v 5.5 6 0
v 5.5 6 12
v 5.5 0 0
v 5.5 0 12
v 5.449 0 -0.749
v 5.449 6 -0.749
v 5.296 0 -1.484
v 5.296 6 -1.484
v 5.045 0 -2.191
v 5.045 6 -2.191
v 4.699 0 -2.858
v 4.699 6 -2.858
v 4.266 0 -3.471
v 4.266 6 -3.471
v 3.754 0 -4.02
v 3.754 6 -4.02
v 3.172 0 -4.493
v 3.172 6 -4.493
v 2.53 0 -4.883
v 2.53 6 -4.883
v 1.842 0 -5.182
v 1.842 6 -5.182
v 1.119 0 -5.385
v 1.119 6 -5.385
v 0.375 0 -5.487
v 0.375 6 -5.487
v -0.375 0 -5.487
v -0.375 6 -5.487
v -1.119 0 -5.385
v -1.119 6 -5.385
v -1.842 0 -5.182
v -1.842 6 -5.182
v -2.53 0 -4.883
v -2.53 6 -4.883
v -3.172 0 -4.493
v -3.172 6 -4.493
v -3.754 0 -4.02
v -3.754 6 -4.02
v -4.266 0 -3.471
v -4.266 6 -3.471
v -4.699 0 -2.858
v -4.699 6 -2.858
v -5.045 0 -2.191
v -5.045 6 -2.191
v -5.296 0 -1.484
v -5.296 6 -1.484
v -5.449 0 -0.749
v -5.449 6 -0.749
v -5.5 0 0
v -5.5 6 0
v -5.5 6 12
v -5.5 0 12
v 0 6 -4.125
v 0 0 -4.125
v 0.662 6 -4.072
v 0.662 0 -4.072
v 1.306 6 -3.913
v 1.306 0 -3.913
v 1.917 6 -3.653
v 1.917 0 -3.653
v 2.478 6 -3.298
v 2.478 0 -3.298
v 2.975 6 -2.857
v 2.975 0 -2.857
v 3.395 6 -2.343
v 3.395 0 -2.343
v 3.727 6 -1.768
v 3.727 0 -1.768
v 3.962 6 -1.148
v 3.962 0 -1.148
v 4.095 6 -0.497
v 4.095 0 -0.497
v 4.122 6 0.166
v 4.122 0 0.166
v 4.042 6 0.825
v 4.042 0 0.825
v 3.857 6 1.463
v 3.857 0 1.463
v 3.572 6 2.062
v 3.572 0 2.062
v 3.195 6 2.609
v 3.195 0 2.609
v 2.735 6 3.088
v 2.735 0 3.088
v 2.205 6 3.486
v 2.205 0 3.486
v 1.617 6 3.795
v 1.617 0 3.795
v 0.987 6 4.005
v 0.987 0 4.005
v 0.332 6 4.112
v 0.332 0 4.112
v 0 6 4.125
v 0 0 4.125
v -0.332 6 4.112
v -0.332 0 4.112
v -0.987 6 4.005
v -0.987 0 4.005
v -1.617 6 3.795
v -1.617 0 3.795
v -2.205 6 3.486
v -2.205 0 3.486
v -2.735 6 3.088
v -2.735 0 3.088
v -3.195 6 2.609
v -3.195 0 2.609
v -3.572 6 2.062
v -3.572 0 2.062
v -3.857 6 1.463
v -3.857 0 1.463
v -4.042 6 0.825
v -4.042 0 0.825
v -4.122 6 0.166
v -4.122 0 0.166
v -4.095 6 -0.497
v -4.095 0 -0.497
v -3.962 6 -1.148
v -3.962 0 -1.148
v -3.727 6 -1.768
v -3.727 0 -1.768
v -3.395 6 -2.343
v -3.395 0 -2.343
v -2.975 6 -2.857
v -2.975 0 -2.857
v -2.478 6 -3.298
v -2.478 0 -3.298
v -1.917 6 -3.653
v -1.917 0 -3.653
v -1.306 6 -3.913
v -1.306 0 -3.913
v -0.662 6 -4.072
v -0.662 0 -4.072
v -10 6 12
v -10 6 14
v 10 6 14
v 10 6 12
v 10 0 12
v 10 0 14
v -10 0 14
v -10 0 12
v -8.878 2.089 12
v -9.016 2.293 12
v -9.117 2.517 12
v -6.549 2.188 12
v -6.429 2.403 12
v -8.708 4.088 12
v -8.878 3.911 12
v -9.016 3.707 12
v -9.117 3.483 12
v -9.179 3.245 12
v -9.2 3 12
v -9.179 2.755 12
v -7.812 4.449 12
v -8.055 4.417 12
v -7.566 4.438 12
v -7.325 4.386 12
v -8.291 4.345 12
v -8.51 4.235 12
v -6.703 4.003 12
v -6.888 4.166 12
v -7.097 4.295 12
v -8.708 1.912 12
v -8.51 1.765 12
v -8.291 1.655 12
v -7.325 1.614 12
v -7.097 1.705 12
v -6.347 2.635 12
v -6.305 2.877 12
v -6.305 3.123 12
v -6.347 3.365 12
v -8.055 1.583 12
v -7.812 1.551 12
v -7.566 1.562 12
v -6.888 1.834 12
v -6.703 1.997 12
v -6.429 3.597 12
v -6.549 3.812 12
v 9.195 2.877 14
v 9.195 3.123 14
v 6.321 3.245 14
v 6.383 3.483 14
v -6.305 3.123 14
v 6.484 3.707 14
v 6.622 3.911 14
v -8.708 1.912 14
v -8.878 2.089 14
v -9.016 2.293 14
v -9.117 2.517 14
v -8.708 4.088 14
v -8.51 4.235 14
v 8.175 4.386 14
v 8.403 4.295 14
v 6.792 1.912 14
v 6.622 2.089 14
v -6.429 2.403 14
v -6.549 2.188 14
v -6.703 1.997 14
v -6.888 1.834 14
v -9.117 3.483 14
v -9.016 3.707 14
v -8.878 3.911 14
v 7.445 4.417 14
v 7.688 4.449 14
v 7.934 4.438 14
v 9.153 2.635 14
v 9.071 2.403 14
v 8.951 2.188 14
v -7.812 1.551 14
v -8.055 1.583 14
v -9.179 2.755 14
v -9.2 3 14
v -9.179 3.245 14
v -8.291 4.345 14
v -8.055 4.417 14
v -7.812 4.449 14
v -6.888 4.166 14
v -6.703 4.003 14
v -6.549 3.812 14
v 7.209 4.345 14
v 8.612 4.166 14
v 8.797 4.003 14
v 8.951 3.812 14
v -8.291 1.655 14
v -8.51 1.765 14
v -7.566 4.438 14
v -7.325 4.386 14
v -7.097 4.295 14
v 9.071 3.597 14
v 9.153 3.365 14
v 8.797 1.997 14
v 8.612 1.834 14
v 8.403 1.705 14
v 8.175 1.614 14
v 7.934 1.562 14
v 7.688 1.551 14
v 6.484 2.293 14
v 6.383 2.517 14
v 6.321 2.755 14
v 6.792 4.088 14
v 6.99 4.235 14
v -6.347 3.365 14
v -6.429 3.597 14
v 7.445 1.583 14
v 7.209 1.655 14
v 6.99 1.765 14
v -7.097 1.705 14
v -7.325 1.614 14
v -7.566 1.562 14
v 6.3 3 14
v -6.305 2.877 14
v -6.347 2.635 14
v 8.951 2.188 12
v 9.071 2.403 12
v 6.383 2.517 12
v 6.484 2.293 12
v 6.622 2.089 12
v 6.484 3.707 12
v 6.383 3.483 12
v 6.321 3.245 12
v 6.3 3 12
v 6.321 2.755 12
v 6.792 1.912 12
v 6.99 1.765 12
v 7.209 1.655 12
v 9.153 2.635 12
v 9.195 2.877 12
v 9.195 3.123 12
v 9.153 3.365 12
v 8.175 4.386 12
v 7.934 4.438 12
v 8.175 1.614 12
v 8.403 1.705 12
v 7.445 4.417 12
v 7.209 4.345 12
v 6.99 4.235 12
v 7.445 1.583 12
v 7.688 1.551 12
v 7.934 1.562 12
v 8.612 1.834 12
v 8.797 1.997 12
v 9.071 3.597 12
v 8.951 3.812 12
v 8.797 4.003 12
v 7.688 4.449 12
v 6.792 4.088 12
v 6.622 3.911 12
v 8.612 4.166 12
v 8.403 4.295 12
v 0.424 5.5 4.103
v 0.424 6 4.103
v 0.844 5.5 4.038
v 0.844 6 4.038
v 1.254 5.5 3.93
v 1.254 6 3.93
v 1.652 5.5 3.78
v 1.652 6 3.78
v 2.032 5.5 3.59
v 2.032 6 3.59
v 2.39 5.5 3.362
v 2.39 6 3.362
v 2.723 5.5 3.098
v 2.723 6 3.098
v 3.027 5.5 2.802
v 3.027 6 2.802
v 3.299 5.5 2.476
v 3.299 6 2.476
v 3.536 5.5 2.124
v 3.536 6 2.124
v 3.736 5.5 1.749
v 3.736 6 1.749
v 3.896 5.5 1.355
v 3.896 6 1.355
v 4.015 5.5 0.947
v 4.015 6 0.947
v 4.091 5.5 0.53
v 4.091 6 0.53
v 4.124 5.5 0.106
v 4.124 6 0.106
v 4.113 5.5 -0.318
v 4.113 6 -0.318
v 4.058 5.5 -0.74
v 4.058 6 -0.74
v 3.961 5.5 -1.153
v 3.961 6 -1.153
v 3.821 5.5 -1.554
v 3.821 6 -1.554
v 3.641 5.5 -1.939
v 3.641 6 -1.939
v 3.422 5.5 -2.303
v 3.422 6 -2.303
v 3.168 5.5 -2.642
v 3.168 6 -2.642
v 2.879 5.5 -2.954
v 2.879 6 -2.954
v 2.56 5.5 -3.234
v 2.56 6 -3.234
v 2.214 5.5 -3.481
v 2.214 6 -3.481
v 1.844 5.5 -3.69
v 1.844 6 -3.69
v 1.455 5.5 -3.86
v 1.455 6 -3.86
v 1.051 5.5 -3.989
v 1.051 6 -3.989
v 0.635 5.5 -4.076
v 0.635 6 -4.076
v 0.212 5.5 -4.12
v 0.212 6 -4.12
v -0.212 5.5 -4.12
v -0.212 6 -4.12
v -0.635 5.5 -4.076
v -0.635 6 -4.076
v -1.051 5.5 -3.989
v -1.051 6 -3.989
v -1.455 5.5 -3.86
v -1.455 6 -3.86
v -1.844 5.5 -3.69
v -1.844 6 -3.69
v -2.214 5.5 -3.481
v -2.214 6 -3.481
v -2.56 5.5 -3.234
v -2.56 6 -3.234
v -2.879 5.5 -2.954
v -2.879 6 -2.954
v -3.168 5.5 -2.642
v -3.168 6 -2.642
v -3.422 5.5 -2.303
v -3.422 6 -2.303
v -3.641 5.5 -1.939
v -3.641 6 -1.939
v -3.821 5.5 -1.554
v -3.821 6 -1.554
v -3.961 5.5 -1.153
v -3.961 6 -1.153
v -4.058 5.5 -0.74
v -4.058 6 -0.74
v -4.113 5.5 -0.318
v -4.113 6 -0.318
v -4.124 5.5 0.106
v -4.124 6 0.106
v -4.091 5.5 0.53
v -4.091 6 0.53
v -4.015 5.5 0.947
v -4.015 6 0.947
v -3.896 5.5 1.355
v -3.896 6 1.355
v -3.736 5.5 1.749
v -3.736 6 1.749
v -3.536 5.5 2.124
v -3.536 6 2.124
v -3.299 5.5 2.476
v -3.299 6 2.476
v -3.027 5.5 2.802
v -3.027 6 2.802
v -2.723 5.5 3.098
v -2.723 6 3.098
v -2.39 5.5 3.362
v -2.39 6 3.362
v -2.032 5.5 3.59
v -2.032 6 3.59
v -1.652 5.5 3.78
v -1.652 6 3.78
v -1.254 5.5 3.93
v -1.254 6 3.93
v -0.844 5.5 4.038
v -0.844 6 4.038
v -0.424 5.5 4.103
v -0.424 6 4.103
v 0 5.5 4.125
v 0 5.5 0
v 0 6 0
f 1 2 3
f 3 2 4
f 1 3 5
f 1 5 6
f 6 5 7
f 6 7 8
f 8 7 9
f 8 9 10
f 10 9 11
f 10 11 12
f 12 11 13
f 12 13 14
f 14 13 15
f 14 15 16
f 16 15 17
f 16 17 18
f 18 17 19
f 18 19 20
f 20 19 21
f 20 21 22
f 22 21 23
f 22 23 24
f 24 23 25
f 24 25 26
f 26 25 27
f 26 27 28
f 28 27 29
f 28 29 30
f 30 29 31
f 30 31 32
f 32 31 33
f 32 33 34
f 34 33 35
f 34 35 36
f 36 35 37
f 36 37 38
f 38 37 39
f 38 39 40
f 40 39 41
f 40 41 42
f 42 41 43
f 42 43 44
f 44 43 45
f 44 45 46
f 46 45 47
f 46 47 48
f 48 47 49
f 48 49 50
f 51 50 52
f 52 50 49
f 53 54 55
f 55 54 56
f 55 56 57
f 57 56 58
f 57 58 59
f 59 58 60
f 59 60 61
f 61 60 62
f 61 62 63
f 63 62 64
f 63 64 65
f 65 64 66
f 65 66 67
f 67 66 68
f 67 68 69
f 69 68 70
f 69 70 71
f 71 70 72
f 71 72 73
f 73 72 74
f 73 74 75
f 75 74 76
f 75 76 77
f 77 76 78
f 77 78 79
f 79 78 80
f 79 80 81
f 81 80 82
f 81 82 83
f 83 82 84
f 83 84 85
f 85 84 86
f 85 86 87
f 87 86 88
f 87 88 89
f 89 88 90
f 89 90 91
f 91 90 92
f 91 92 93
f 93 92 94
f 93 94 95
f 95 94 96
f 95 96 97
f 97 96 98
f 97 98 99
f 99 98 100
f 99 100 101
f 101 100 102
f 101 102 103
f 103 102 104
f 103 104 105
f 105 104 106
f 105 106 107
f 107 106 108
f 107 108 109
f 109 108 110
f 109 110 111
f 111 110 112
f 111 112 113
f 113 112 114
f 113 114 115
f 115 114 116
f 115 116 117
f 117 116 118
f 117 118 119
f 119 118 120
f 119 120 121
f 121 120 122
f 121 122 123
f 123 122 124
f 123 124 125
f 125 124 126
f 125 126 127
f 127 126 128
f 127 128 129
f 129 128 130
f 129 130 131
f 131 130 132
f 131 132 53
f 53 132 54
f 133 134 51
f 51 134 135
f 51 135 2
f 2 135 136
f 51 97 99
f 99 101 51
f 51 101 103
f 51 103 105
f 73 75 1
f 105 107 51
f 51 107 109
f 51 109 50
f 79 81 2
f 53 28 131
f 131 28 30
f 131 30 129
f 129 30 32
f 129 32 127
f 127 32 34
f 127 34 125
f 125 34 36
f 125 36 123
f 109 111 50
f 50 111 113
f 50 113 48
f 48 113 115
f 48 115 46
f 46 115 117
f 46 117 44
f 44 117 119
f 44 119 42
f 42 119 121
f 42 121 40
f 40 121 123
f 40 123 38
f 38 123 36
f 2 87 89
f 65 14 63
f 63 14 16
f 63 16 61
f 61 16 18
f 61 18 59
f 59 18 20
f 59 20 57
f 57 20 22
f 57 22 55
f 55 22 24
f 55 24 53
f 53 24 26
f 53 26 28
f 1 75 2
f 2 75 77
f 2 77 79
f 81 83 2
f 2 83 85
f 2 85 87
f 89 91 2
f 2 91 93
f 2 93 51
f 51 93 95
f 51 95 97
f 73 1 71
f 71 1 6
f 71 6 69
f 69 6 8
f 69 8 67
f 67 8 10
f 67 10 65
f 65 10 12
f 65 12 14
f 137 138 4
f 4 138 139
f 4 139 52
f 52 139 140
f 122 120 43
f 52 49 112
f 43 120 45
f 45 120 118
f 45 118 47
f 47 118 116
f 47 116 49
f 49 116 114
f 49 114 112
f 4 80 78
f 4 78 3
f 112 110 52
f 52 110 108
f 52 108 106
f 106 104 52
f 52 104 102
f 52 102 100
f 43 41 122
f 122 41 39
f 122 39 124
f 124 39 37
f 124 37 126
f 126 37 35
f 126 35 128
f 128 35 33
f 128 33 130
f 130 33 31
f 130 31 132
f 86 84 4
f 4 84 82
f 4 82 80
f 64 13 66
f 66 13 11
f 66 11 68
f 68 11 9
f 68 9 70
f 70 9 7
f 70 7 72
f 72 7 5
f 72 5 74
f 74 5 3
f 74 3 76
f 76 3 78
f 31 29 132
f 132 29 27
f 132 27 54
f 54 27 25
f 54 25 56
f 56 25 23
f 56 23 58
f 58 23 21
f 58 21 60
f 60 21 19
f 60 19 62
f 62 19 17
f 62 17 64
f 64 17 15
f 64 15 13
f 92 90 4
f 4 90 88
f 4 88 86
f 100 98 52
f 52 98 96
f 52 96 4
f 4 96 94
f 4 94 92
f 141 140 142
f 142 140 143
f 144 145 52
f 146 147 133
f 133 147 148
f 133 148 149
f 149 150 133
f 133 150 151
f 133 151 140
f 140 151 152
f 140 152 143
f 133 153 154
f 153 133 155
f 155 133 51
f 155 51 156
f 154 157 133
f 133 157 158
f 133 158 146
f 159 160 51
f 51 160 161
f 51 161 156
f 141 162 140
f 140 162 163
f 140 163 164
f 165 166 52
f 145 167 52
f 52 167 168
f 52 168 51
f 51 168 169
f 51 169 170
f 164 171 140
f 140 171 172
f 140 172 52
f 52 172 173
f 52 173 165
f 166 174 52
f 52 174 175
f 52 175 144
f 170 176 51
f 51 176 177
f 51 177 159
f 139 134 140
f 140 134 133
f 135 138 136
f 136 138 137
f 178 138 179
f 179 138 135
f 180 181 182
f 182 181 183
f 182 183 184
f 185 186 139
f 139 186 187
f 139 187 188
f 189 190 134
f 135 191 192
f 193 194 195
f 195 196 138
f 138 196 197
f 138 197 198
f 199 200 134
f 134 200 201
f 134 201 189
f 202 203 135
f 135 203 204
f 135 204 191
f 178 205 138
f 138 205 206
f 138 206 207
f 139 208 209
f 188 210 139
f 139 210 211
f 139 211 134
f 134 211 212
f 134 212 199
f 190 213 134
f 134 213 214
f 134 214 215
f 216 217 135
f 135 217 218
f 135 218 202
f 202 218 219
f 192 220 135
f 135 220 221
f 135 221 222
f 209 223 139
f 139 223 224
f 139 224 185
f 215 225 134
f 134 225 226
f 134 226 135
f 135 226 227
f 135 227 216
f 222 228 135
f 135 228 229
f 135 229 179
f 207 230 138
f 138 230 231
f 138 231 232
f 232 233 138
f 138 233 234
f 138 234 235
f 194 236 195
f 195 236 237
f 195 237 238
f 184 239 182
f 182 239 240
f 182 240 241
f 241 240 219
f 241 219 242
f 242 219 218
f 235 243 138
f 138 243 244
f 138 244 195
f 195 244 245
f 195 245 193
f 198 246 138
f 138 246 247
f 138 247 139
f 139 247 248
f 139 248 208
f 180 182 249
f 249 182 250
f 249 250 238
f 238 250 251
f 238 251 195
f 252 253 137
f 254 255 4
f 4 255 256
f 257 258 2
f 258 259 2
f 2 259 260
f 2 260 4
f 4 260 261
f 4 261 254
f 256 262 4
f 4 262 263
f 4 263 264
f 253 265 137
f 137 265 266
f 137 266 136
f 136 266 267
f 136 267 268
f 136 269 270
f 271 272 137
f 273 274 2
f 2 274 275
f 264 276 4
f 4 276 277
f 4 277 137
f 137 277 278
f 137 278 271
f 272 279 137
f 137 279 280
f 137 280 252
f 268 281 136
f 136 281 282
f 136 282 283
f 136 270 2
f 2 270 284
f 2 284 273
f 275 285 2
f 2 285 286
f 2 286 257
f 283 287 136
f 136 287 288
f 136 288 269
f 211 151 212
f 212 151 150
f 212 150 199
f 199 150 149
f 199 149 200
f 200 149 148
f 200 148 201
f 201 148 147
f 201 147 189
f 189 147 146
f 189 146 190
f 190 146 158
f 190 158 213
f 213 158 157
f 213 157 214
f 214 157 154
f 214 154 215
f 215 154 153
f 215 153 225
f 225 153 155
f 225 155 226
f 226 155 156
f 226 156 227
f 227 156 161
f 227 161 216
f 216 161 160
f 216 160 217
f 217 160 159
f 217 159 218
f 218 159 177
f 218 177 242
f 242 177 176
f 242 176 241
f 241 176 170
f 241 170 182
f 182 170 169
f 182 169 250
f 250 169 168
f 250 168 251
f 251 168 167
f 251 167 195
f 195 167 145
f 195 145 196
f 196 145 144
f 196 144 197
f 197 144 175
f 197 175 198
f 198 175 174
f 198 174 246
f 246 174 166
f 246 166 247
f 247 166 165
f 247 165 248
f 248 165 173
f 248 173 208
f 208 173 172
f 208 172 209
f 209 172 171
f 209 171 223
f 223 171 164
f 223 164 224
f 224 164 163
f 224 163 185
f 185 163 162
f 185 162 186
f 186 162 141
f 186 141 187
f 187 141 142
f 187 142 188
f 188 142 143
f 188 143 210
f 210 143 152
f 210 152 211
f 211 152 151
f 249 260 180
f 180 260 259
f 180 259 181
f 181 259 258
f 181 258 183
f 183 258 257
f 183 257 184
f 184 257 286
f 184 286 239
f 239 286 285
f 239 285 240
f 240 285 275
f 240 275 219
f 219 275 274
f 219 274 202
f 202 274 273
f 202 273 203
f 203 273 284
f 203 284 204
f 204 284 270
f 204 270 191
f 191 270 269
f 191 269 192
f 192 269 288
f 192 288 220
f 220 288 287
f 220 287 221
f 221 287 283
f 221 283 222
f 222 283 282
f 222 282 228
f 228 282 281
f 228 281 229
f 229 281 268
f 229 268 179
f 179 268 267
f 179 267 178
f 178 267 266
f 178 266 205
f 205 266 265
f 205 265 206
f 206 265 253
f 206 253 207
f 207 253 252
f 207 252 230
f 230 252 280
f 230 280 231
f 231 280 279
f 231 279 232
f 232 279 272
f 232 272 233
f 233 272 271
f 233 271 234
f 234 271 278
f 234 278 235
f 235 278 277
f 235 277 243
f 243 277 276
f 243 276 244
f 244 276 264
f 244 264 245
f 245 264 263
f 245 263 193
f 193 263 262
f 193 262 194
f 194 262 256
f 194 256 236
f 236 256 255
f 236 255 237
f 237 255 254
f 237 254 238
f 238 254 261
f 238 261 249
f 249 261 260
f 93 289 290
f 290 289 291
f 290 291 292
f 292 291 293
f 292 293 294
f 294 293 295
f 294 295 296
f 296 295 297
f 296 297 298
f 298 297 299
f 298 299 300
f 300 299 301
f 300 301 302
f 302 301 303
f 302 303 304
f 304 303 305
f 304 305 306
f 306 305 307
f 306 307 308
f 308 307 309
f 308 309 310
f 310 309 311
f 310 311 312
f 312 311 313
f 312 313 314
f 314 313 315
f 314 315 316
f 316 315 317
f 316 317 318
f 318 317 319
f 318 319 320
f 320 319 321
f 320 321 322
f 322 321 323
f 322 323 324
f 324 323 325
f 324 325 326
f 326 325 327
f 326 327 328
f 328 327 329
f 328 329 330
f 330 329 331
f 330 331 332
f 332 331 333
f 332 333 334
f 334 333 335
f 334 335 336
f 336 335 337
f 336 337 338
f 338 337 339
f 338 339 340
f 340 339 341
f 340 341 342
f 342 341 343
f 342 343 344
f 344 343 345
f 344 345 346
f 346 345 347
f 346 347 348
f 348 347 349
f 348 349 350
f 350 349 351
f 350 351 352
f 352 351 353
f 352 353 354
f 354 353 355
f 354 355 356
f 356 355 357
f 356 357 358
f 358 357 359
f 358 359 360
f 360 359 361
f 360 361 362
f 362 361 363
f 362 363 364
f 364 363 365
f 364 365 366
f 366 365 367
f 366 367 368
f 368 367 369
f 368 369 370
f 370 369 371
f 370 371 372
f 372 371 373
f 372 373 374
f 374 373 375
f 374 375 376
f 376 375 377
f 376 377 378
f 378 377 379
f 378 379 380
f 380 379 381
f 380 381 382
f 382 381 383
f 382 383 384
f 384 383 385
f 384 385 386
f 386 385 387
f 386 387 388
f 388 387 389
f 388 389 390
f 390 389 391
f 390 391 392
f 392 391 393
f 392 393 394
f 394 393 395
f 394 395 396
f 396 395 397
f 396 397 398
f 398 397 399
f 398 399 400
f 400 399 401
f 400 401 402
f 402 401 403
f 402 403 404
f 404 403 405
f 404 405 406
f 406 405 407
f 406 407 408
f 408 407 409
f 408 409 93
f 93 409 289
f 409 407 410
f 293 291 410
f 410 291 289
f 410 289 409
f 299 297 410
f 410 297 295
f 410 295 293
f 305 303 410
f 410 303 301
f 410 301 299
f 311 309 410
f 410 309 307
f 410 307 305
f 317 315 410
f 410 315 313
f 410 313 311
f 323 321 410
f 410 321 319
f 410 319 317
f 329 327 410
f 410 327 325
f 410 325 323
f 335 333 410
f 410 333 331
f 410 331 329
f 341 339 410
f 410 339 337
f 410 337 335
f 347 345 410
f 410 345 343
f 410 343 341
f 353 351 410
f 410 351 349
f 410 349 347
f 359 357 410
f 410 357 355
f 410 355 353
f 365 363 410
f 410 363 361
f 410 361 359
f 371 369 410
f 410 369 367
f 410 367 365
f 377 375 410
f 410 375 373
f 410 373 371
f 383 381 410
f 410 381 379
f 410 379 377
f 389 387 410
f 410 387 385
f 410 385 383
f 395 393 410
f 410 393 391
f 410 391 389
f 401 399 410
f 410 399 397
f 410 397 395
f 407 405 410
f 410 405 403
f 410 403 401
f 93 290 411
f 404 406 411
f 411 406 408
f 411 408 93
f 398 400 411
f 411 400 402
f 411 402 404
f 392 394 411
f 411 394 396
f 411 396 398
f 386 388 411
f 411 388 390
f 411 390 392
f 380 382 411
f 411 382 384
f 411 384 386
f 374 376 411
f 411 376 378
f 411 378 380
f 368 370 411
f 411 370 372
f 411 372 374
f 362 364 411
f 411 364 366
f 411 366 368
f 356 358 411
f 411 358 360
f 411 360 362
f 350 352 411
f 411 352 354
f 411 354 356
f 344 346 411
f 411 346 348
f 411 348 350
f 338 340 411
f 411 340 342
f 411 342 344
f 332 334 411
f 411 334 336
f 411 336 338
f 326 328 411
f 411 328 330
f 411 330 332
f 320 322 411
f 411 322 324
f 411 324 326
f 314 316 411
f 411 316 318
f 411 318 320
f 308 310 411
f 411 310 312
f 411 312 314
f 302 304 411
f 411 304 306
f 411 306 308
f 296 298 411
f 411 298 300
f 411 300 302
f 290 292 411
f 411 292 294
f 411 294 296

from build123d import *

# Parameters (mm, degrees)
SKETCH1_R                     = 4.125
BOSS_EXTRUDE1_DEPTH           = 6
SKETCH2_W                     = 20
SKETCH2_H                     = 6
BOSS_EXTRUDE2_DEPTH           = 2
TAP_DRILL_FOR_M3_5X0_6_TAP1_D = 2.9
SKETCH5_R                     = 4.125
BOSS_EXTRUDE3_DEPTH           = 0.5


with BuildPart() as part:
    # Sketch1 → Boss-Extrude1 (new body)
    with BuildSketch(Plane(origin=(0, 0, 0), x_dir=(1, 0, 0), z_dir=(0, 1, 0))):
        with BuildLine():
            ThreePointArc((5.5, 0), (0, 5.5), (-5.5, 0))
            Line((-5.5, 0), (-5.5, -12))
            Line((-5.5, -12), (5.5, -12))
            Line((5.5, -12), (5.5, 0))
        make_face()
        Circle(SKETCH1_R, mode=Mode.SUBTRACT)
    extrude(amount=BOSS_EXTRUDE1_DEPTH)

    # Sketch2 → Boss-Extrude2 (add)
    with BuildSketch(Plane.XY.offset(12)):
        with Locations((0, 3)):
            Rectangle(SKETCH2_W, SKETCH2_H)
    extrude(amount=BOSS_EXTRUDE2_DEPTH)

    # Tap Drill for M3.5x0.6 Tap1 (through all)
    with Locations(Plane(origin=(0, 0, 12), x_dir=(-1, 0, 0), z_dir=(0, 0, -1))):
        with Locations((7.75, 3), (-7.75, 3)):
            Hole(TAP_DRILL_FOR_M3_5X0_6_TAP1_D / 2)


with BuildPart() as body_2:
    # Sketch5 → Boss-Extrude3 (new body)
    with BuildSketch(Plane(origin=(0, 6, 0), x_dir=(1, 0, 0), z_dir=(0, 1, 0))):
        Circle(SKETCH5_R)
    extrude(amount=-BOSS_EXTRUDE3_DEPTH)


solid = Compound([part.part, body_2.part])
